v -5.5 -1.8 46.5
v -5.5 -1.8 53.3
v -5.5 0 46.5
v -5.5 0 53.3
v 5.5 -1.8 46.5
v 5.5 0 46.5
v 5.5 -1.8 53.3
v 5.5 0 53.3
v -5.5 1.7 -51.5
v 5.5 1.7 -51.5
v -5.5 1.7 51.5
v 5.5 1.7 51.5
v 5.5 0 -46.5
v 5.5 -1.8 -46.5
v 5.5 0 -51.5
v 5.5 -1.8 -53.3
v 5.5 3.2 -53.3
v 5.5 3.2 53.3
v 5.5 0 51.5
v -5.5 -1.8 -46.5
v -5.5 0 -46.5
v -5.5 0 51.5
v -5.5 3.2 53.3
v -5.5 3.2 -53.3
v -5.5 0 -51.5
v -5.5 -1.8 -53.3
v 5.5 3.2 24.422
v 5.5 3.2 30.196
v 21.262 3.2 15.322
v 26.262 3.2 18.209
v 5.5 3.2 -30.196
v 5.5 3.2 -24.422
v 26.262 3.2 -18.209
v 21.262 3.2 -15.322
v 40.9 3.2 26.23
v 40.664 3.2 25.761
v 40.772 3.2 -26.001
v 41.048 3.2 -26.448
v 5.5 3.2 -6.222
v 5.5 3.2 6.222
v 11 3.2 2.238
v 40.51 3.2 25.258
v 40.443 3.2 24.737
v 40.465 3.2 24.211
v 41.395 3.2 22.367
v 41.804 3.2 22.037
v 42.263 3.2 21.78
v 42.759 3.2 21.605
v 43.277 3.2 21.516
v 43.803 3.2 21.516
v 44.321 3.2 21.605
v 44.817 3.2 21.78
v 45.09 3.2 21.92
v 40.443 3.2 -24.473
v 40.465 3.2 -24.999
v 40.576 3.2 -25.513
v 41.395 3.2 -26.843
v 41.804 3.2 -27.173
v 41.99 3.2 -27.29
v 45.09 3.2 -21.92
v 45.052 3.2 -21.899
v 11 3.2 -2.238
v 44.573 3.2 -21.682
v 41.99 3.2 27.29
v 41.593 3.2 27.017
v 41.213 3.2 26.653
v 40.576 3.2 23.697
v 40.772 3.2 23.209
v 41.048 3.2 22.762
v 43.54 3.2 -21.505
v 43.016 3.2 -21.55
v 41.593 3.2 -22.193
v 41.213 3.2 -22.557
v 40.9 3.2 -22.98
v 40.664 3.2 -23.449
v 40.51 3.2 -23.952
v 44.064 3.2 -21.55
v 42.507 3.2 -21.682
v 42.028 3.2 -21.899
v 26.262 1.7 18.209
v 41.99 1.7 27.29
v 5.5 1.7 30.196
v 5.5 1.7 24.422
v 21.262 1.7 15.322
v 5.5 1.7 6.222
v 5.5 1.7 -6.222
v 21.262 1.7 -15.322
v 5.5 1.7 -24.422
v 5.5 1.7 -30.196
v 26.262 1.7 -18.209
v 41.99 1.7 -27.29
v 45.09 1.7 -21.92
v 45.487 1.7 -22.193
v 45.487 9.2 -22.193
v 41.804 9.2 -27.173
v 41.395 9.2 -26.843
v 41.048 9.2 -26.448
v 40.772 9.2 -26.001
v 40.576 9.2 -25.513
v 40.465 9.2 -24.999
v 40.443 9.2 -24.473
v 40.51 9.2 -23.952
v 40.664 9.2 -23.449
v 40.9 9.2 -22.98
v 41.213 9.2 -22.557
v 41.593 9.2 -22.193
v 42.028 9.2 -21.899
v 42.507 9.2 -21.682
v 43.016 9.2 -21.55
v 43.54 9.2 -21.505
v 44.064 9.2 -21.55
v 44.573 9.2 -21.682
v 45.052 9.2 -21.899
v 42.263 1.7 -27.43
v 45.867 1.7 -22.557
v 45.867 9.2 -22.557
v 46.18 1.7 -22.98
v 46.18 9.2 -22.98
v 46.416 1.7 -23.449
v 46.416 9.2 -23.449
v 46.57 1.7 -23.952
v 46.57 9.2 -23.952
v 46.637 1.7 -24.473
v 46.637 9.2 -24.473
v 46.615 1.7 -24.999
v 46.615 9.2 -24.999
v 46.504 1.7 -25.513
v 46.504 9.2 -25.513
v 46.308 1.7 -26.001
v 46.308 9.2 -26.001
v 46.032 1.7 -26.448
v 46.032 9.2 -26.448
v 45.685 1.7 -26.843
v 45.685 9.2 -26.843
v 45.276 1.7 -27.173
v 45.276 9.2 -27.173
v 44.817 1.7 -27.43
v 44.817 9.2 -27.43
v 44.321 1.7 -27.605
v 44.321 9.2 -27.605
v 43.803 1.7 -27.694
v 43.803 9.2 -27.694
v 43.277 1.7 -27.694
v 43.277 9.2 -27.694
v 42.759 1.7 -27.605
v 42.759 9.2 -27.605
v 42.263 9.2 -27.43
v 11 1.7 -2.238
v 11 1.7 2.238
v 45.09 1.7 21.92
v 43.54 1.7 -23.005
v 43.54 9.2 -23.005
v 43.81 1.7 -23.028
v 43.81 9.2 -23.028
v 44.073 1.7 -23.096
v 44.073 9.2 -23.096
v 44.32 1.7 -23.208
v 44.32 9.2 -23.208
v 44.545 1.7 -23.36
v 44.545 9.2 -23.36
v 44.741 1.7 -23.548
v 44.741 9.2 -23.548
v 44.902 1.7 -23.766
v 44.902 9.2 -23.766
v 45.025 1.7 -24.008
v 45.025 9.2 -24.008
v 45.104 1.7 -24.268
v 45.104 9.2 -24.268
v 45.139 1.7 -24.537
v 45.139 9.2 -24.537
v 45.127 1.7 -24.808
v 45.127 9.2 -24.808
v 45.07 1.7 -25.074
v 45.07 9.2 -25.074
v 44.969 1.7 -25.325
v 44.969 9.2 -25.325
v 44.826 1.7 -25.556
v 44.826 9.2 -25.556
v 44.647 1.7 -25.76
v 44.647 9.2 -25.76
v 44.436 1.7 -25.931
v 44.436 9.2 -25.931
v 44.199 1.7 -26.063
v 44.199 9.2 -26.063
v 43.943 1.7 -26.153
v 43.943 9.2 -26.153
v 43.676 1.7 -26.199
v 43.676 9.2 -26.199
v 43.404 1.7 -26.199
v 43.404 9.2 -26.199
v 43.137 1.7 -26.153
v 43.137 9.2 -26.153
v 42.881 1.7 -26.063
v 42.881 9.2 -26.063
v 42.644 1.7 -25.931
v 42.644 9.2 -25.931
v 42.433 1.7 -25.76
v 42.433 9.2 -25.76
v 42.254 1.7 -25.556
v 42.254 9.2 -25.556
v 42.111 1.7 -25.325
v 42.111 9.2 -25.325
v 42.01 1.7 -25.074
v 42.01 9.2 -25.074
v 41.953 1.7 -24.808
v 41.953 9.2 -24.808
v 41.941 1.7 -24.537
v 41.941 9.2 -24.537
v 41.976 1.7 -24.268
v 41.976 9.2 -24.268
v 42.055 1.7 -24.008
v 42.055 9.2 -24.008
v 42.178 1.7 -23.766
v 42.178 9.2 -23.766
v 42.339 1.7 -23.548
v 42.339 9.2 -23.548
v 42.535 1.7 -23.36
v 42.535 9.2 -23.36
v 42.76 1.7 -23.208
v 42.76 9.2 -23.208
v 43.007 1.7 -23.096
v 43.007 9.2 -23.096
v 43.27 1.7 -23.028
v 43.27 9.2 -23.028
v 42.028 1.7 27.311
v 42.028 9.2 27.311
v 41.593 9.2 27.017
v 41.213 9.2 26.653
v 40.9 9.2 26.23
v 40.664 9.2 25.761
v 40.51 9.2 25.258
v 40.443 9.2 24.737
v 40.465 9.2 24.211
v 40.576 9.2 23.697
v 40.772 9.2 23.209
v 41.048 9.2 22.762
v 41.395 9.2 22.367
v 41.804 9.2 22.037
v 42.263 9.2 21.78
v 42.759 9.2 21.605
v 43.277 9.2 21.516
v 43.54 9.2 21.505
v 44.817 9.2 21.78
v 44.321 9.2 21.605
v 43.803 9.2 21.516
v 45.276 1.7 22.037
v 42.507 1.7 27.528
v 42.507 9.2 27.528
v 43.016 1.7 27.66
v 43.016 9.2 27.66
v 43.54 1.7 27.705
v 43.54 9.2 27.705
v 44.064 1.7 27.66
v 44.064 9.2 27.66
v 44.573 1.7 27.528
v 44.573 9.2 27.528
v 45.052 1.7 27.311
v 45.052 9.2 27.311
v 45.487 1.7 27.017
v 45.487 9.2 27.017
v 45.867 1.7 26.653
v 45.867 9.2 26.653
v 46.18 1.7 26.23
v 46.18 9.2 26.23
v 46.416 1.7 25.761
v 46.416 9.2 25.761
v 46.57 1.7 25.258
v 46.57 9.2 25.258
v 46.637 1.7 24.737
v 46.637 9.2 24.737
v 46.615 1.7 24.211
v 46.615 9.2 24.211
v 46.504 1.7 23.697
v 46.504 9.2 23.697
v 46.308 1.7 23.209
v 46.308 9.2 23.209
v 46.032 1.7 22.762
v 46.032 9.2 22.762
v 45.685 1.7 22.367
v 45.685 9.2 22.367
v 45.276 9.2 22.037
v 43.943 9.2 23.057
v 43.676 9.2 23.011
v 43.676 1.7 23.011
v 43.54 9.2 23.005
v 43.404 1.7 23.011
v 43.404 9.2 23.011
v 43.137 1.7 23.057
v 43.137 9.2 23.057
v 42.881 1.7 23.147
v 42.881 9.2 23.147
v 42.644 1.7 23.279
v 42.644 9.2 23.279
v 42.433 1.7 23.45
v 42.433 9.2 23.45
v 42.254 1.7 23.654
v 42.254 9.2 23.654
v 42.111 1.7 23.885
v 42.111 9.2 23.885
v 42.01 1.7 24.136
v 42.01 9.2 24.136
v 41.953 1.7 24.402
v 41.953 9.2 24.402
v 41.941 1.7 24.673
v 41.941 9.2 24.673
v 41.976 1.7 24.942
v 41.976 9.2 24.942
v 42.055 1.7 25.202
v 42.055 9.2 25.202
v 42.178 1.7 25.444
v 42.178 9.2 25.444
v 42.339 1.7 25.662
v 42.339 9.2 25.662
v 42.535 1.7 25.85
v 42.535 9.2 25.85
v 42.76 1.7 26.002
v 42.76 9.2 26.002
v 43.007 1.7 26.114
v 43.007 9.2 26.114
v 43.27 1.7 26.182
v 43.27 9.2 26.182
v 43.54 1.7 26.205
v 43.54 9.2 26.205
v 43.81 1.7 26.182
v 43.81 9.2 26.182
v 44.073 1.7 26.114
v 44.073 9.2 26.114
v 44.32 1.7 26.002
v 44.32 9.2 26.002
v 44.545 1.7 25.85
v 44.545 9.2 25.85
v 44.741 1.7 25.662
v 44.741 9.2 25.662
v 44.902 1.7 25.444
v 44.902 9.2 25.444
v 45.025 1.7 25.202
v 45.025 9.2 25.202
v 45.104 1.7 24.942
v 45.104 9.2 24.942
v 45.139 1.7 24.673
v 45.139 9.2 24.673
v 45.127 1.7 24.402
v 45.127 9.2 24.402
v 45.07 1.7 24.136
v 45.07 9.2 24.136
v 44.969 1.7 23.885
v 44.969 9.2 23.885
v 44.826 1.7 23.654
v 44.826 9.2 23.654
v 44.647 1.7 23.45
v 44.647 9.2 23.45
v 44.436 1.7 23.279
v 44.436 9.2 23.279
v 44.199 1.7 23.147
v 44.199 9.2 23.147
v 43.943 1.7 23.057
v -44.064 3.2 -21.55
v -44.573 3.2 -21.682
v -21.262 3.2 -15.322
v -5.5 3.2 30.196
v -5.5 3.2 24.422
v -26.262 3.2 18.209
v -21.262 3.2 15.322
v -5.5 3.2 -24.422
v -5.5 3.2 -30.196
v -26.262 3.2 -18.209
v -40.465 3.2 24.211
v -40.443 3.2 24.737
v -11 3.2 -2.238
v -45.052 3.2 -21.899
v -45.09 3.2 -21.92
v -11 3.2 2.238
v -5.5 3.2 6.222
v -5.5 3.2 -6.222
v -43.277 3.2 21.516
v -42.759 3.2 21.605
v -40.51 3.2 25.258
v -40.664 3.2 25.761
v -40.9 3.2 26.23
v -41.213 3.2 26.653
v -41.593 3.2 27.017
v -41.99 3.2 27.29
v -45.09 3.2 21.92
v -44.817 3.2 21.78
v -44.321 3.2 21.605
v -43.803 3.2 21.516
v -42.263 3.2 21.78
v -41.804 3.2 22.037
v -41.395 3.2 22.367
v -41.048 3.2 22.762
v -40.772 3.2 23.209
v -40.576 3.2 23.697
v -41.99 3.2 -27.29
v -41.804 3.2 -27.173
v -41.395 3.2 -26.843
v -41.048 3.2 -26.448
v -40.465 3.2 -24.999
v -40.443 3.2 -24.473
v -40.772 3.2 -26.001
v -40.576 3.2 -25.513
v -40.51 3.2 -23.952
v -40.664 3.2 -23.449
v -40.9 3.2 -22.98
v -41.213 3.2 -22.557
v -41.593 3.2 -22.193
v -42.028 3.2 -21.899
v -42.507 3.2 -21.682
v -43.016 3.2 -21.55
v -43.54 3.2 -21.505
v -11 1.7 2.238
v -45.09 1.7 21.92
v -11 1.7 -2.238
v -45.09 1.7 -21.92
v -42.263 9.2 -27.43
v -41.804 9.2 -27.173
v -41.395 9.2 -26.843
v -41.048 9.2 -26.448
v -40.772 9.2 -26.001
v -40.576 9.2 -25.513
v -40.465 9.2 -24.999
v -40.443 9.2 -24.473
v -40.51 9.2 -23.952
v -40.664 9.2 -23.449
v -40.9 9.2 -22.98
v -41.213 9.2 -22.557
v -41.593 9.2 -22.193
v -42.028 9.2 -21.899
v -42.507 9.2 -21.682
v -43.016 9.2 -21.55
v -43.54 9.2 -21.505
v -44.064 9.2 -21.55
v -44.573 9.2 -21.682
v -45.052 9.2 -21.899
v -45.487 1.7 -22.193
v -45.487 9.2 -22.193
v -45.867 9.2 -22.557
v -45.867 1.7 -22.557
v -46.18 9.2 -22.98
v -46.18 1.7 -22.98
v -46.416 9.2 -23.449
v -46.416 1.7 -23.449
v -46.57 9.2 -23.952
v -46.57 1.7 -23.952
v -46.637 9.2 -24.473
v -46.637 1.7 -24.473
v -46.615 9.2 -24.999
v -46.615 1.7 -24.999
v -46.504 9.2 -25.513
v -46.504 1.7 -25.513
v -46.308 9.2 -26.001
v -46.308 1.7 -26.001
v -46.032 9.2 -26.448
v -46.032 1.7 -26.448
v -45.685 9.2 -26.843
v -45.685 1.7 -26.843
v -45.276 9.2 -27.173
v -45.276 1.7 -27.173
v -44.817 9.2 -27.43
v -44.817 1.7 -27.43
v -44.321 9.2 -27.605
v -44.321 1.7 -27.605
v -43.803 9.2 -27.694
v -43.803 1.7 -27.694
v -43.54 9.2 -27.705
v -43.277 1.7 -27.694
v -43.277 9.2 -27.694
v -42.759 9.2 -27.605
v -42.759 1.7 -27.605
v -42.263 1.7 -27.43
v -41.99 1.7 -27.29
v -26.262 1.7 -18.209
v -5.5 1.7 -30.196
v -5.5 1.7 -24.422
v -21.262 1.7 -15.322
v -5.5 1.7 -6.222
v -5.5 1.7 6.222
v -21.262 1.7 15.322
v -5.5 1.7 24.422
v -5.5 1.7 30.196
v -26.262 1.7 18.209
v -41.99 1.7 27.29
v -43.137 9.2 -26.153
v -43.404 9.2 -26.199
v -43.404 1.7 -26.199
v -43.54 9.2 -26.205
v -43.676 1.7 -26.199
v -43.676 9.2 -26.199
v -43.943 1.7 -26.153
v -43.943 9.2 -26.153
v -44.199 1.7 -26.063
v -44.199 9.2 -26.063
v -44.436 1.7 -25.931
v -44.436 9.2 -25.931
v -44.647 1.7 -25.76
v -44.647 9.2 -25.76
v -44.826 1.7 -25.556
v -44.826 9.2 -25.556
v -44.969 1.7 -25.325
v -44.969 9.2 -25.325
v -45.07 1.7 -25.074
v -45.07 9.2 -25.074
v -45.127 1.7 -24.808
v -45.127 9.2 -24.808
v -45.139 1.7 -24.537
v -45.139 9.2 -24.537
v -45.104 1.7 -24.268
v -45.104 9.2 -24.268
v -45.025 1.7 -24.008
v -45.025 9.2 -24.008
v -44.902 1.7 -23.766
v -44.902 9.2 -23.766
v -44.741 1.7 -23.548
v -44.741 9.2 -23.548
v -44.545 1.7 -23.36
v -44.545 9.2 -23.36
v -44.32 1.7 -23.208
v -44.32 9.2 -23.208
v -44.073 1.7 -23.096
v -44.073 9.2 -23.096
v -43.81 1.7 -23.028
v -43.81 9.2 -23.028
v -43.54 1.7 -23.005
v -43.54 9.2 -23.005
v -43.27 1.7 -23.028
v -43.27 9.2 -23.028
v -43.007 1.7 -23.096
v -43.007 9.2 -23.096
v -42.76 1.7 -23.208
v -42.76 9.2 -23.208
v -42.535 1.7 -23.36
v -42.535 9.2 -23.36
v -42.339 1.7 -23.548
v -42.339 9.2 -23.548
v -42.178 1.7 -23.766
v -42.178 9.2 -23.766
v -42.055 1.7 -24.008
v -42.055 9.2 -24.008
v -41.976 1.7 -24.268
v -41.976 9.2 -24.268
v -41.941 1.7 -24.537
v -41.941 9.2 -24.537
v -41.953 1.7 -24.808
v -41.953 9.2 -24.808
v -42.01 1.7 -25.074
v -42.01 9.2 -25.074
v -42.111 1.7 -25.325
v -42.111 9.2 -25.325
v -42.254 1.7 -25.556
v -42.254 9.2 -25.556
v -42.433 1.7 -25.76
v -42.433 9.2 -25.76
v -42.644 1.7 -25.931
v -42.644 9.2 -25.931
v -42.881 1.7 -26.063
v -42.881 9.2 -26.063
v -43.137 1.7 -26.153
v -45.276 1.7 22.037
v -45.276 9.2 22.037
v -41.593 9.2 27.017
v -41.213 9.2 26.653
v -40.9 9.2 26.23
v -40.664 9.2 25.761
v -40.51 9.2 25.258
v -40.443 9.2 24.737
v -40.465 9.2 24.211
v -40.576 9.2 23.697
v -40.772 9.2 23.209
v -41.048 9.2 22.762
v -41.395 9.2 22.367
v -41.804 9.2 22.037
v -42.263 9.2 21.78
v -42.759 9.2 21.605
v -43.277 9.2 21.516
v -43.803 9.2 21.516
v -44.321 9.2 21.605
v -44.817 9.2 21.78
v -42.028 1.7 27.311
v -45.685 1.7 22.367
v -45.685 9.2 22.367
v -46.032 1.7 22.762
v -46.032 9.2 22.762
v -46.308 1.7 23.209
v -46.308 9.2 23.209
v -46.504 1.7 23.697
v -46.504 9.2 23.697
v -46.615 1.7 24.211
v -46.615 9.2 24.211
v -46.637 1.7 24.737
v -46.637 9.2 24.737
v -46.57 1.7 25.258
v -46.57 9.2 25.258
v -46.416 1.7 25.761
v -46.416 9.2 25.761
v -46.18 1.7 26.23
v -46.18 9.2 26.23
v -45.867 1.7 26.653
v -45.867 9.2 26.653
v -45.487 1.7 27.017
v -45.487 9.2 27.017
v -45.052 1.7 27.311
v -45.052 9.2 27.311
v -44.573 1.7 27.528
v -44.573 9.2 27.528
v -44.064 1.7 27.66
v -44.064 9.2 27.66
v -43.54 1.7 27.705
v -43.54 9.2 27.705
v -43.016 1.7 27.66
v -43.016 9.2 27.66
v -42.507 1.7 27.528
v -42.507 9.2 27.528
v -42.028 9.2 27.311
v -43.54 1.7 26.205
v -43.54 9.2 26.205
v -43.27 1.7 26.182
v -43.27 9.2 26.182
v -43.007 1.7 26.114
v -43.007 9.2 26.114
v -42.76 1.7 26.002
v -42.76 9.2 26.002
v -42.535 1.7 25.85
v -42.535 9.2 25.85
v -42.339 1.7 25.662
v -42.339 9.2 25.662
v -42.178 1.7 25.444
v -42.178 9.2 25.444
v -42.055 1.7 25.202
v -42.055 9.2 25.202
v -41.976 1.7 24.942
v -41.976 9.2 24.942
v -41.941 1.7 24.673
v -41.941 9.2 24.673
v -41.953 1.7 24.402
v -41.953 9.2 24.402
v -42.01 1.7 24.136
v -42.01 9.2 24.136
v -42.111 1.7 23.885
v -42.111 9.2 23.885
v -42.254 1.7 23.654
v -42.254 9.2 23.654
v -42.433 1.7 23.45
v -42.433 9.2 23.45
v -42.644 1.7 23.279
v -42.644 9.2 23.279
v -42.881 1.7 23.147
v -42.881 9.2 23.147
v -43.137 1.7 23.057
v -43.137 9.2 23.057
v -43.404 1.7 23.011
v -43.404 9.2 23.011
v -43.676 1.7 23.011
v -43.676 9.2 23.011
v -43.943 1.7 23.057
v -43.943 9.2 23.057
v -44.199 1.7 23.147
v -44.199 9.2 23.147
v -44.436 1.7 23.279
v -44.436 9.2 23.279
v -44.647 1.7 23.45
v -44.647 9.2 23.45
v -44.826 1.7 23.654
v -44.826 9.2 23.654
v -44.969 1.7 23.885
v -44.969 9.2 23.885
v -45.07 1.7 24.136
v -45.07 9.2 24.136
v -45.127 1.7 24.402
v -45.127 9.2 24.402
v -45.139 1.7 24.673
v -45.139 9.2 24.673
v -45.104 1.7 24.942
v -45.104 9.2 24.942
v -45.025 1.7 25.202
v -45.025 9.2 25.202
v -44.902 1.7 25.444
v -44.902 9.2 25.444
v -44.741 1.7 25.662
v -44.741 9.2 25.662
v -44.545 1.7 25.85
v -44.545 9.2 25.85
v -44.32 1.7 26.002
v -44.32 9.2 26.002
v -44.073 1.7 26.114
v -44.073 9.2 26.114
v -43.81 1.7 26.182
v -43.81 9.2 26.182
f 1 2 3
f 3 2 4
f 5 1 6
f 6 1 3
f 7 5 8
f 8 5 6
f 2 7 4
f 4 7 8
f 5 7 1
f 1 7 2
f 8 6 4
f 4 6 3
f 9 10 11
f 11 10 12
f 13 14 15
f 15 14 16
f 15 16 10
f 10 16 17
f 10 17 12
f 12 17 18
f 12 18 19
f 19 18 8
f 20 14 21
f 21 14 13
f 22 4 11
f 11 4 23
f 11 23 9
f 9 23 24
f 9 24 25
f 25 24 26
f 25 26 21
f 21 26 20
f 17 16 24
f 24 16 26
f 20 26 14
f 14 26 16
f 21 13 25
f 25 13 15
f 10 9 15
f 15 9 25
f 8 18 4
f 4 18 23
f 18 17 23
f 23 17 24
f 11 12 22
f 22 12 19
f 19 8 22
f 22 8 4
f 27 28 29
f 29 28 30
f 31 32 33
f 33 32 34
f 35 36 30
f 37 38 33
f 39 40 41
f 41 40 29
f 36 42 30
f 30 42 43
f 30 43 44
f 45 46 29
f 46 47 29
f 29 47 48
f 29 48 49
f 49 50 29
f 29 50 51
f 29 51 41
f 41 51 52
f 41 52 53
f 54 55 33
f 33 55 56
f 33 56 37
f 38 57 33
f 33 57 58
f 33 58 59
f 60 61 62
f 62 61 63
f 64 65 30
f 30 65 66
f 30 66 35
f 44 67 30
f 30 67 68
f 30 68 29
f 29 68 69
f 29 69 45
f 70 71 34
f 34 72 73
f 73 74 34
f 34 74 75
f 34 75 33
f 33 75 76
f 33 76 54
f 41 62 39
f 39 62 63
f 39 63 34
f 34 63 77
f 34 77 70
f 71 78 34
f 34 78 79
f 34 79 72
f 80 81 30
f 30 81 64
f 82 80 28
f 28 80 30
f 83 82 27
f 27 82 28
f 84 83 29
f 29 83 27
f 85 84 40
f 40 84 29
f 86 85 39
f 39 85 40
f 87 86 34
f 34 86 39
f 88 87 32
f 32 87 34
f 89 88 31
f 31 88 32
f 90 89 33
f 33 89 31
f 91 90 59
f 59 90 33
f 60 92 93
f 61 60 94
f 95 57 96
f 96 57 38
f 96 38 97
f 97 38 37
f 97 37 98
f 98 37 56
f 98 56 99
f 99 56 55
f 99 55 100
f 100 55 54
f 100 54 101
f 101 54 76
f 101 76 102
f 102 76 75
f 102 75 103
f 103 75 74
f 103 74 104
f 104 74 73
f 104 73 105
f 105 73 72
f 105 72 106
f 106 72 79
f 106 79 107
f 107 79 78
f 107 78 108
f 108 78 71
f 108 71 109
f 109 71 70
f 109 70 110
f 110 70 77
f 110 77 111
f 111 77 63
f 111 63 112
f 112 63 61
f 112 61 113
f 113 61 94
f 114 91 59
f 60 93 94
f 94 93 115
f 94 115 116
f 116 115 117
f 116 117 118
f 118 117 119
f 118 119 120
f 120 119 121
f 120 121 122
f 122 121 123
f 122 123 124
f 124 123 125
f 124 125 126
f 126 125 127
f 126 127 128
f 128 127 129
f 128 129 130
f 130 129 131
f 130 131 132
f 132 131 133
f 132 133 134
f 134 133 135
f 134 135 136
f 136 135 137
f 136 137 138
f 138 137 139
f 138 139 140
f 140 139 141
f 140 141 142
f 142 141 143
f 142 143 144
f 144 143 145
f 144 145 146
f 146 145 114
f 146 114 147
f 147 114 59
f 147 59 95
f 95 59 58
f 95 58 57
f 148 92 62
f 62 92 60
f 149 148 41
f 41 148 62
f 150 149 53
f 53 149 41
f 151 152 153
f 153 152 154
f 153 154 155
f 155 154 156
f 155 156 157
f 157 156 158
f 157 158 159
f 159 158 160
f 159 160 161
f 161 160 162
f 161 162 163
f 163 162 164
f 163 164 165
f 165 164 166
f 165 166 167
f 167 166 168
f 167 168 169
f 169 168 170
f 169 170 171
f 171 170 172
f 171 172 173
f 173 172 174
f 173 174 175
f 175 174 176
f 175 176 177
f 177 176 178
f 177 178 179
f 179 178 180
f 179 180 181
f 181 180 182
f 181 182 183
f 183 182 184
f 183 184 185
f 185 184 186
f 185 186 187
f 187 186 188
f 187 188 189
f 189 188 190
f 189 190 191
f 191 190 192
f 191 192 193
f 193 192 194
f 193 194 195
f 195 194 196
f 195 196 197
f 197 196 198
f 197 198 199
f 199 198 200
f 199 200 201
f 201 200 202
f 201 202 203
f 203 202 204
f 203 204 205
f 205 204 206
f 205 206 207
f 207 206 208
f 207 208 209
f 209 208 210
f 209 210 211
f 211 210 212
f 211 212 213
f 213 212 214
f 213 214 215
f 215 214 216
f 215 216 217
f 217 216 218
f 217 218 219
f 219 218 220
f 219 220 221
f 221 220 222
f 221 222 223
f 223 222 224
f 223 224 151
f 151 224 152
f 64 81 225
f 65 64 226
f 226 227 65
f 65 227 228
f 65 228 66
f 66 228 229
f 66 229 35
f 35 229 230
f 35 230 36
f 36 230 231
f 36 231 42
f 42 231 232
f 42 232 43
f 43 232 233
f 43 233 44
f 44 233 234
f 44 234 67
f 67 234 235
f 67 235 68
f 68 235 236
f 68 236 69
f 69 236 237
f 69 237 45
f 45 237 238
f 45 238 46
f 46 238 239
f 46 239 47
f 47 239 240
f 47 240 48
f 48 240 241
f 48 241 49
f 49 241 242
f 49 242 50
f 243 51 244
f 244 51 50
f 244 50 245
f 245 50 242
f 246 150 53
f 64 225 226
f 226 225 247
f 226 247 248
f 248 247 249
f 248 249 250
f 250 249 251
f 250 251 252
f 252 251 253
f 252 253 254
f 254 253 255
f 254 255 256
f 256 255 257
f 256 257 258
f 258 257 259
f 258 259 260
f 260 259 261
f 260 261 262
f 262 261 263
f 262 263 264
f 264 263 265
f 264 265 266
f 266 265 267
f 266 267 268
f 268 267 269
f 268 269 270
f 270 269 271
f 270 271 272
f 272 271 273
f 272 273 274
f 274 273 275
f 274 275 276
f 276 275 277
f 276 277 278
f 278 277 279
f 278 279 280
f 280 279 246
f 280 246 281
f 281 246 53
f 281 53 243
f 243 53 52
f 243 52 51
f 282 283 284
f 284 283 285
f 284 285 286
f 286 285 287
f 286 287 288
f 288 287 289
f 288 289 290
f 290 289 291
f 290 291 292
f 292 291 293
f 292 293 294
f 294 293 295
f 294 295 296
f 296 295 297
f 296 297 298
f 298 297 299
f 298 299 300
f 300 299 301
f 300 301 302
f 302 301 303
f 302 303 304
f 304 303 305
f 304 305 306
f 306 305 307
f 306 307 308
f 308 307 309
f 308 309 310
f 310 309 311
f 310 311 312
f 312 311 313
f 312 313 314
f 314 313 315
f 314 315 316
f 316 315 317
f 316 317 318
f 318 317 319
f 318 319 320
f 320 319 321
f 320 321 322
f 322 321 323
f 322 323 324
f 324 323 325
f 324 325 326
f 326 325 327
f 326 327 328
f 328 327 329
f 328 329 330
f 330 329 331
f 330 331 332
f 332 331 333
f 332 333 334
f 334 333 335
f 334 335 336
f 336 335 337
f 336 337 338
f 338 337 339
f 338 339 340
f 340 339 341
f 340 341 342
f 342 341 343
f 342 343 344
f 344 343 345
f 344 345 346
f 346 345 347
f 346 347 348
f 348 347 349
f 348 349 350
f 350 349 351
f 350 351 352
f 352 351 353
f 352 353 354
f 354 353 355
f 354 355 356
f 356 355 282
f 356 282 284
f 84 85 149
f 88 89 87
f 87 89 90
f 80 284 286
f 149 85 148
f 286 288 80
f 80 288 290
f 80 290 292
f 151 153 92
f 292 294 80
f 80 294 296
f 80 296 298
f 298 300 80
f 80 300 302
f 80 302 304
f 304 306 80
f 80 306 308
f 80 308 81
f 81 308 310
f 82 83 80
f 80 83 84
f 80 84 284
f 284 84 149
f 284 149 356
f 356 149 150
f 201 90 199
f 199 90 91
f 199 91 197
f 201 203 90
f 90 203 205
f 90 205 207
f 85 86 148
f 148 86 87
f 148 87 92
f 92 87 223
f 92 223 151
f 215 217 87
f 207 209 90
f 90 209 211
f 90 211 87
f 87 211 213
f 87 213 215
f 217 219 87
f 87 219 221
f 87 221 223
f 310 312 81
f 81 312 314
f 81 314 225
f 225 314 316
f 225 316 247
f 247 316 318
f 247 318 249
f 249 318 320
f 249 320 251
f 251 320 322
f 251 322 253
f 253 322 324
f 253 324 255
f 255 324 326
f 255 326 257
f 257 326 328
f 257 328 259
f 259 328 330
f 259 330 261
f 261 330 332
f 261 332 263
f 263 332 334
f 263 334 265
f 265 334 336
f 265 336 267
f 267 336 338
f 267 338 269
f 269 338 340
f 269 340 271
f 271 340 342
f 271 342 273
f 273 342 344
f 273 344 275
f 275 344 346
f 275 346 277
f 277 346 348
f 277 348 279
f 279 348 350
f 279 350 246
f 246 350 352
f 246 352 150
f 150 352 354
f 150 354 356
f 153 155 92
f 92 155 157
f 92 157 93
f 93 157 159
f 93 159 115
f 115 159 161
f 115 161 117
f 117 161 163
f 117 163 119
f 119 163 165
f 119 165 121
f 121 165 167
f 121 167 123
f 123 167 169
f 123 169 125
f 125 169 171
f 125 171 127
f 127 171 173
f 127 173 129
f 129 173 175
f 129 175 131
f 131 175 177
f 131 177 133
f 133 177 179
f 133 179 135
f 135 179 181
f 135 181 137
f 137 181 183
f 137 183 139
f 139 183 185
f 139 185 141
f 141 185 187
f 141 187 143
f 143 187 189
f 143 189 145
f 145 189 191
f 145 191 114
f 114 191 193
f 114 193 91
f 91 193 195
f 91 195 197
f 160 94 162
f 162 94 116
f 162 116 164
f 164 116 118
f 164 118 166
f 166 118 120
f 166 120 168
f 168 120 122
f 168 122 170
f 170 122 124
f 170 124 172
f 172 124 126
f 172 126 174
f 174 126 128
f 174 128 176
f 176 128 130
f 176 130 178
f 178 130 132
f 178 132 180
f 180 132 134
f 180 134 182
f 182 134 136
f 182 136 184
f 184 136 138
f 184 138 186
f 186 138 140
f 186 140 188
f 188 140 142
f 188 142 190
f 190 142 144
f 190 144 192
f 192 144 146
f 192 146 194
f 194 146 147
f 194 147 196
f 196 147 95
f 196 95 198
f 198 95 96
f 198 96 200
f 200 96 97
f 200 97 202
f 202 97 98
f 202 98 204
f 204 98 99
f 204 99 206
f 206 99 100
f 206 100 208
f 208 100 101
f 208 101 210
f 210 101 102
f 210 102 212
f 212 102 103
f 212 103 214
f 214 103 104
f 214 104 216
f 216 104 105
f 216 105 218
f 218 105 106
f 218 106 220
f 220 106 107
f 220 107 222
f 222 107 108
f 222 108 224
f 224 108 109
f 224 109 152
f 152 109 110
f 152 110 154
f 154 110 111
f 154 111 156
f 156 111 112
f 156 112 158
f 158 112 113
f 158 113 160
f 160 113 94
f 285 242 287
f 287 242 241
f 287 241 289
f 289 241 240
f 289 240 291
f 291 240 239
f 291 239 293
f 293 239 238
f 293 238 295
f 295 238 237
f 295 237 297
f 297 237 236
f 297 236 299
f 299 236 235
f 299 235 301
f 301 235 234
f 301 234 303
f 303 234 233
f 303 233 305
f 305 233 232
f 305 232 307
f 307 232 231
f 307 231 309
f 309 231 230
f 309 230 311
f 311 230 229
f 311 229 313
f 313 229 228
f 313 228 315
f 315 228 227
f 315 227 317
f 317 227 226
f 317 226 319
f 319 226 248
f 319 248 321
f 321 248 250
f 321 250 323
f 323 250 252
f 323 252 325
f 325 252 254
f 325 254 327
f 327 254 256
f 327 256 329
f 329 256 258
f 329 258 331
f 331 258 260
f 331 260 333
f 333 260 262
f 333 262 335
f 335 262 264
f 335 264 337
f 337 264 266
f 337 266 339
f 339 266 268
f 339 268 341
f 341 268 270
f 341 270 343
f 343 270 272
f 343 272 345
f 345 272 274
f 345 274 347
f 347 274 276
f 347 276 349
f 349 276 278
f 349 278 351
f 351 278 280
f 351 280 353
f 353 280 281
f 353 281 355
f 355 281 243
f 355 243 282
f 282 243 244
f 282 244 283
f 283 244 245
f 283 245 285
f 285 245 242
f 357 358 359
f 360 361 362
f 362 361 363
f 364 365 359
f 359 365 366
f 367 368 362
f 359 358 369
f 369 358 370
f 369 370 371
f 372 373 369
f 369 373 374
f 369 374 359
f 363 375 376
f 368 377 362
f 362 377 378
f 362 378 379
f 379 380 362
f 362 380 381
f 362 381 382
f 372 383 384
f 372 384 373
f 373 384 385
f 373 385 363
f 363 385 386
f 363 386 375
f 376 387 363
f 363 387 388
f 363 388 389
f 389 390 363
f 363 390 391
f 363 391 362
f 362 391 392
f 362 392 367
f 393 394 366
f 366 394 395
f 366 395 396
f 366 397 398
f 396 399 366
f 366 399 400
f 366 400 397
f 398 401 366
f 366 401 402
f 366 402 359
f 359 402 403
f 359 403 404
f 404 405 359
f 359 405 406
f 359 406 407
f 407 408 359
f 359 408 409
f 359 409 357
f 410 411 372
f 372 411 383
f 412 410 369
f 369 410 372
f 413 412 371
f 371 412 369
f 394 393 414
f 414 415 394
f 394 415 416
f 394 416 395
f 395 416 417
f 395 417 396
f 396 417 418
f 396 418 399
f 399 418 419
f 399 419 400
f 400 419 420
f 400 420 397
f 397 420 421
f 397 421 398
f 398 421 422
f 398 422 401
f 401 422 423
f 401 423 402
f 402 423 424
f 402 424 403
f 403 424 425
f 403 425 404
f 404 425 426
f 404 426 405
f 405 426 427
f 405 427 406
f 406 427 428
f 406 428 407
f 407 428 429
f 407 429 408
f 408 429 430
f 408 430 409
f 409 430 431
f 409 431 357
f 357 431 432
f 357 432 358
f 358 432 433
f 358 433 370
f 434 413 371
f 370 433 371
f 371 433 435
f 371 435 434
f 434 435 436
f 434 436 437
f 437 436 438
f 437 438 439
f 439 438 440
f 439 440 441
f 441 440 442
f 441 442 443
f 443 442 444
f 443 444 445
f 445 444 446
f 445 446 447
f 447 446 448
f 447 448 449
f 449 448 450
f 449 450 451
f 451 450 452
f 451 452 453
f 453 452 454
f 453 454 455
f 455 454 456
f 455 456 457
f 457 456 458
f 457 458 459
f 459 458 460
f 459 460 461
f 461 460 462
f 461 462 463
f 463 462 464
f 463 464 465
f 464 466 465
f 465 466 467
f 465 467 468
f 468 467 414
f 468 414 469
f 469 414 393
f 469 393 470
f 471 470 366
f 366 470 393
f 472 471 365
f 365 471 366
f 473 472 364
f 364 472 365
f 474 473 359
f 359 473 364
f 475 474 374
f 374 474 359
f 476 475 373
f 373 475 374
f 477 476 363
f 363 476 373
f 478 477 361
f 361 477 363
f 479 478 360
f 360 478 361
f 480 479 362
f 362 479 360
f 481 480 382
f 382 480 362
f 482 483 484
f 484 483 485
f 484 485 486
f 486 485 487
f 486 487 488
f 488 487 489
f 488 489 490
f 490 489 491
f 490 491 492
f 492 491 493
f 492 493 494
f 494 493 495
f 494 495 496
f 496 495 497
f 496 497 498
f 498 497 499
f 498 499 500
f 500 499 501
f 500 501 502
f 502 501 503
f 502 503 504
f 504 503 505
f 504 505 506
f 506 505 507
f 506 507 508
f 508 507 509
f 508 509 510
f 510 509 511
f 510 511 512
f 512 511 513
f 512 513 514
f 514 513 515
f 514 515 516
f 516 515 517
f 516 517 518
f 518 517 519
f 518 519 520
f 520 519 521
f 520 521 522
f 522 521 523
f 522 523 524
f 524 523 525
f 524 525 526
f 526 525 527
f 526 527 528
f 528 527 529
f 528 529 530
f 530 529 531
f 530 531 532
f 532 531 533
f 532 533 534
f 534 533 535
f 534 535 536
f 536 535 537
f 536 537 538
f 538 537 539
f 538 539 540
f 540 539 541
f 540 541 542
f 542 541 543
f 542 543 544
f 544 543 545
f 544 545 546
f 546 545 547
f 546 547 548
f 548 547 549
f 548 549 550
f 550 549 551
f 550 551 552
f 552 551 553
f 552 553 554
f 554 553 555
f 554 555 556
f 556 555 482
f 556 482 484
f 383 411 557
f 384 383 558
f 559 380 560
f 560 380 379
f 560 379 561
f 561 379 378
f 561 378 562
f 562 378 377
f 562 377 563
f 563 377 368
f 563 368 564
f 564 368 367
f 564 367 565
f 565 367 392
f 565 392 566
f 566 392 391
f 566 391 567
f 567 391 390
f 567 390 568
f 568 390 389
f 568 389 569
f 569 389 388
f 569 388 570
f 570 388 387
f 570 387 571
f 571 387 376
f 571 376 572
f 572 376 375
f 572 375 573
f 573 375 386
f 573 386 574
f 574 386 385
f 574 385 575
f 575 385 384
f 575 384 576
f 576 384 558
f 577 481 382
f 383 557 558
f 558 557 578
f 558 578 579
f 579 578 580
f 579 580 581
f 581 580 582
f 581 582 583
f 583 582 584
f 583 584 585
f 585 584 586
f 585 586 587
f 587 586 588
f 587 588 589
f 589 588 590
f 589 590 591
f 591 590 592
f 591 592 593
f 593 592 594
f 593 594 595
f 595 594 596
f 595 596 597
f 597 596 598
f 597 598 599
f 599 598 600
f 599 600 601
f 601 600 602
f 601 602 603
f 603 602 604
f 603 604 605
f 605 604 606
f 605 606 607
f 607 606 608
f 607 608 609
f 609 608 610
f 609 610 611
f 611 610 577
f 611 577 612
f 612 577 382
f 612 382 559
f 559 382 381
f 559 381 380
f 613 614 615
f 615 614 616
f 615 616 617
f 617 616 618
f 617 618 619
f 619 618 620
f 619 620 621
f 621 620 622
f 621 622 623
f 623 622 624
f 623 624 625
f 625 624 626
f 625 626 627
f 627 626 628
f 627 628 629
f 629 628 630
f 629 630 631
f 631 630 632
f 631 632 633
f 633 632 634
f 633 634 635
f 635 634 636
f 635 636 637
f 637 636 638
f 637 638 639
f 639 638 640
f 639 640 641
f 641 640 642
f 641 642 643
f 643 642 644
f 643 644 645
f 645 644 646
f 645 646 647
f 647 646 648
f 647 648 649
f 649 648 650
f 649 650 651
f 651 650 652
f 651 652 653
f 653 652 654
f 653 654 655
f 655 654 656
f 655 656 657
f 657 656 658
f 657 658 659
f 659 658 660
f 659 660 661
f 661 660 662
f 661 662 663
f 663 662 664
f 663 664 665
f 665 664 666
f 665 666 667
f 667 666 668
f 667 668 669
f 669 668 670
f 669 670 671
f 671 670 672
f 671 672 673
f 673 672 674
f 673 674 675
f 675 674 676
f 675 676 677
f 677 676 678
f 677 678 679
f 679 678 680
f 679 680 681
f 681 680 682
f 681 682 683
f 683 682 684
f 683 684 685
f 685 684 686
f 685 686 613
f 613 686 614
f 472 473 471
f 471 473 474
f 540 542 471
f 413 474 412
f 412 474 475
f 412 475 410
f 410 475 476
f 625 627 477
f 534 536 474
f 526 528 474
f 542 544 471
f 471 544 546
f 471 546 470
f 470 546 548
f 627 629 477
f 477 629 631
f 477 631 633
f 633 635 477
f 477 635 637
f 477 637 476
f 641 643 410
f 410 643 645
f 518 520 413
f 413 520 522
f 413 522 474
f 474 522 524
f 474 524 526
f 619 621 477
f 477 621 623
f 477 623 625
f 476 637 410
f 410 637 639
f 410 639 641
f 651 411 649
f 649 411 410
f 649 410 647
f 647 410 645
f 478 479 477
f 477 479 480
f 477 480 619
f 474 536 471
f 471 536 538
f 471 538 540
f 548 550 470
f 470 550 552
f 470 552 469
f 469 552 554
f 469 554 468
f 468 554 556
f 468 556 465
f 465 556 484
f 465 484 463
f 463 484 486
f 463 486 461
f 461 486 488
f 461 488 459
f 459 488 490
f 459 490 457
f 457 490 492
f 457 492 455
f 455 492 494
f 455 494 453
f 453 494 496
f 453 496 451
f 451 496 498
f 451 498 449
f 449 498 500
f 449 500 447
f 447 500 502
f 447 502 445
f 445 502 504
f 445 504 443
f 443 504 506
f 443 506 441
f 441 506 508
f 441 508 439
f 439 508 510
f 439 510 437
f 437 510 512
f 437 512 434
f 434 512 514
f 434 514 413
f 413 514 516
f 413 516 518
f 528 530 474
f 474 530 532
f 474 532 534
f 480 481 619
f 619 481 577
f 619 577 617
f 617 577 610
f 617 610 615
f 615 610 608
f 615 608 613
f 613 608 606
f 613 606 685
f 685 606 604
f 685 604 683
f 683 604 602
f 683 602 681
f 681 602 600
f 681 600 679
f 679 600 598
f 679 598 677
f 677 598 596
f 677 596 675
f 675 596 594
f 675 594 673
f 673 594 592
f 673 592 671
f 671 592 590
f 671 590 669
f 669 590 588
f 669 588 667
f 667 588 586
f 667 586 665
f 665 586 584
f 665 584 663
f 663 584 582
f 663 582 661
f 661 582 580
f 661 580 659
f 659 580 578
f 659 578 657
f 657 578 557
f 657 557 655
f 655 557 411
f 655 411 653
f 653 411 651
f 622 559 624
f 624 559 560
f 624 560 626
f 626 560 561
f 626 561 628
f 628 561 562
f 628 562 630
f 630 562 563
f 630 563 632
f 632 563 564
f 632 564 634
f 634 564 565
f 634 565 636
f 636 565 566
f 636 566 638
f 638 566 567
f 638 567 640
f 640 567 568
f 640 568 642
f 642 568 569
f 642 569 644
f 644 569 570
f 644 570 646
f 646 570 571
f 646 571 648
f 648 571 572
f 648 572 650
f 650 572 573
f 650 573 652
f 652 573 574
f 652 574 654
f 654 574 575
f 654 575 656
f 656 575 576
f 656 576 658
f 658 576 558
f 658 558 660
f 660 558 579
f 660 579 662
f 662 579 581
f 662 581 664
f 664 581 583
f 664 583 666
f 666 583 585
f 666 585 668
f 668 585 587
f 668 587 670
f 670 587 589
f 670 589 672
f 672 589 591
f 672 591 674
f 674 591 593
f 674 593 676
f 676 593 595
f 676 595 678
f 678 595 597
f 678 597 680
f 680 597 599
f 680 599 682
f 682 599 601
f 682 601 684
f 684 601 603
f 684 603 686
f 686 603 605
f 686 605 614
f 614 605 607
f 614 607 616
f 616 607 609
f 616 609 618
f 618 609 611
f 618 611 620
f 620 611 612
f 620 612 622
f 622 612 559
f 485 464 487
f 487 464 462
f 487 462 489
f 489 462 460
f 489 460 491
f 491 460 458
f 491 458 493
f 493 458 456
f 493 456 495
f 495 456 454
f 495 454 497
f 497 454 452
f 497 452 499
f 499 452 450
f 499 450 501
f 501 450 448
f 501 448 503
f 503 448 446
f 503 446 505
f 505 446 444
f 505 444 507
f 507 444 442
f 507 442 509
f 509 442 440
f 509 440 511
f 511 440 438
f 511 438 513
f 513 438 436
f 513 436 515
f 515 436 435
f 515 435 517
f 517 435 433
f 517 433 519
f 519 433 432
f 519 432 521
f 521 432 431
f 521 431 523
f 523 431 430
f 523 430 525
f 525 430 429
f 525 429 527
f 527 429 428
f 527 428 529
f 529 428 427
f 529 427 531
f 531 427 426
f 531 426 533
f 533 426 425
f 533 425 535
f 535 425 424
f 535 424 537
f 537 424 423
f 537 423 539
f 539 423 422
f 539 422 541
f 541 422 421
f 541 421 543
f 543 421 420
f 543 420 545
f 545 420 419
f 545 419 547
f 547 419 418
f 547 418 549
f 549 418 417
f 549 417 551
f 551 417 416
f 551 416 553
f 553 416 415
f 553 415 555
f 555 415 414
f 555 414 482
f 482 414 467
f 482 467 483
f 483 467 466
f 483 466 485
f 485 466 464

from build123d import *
from build123d.topology import SkipClean

# Parameters (mm, degrees)
EXTRUDE_1_DEPTH   = 1.8
EXTRUDE_1_2_DEPTH = 1.8
SKETCH_2_W        = 11
SKETCH_2_H        = 1.8
EXTRUDE_2_DEPTH   = 1.7
SKETCH_3_W        = 11
SKETCH_3_H        = 106.6
EXTRUDE_3_DEPTH   = 1.5
SKETCH_4_R        = 1.6
EXTRUDE_5_DEPTH   = 1.5
EXTRUDE_5_2_DEPTH = 1.5
SKETCH_5_R        = 3.1
SKETCH_5_R_2      = 1.6
EXTRUDE_6_DEPTH   = 6


with BuildPart() as part:
    # 草图1 → 凸台-拉伸1 (new body)
    with BuildSketch(Plane(origin=(0, 0, 0), x_dir=(1, 0, 0), z_dir=(0, 1, 0))):
        Polygon((5.5, 53.3), (5.5, 51.5), (5.5, 46.5), (-5.5, 46.5), (-5.5, 51.5), (-5.5, 53.3), align=None)
    extrude(amount=-EXTRUDE_1_DEPTH)

    # 草图2 → 凸台-拉伸2 (add)
    with BuildSketch(Plane(origin=(0, 0, 0), x_dir=(1, 0, 0), z_dir=(0, 1, 0))):
        with Locations((0, 52.4)):
            Rectangle(SKETCH_2_W, SKETCH_2_H)
        with Locations((0, -52.4)):
            Rectangle(SKETCH_2_W, SKETCH_2_H)
    extrude(amount=EXTRUDE_2_DEPTH)


with BuildPart() as body_2:
    # 草图1 → Extrude 1 2 (new body)
    with BuildSketch(Plane(origin=(0, 0, 0), x_dir=(1, 0, 0), z_dir=(0, 1, 0))):
        Polygon((-5.5, -51.5), (-5.5, -46.5), (5.5, -46.5), (5.5, -51.5), (5.5, -53.3), (-5.5, -53.3), align=None)
    extrude(amount=-EXTRUDE_1_2_DEPTH)


with BuildPart() as extrude_2_piece_1:
    # of the separate pieces the step leaves, piece 1, a body of its own (extrude_2_pieces)
    add(part.part.solids().sort_by_distance((5.5, -1.8, -53.3))[0])



with BuildPart() as extrude_2_piece_2:
    # of the separate pieces the step leaves, piece 2, a body of its own (extrude_2_pieces)
    add(part.part.solids().sort_by_distance((-5.5, 0, 51.5))[0])


with BuildPart() as extrude_2_piece_1_1:
    add(extrude_2_piece_1.part)

    add(extrude_2_piece_2.part)  # 凸台-拉伸3 merges 凸台-拉伸2 piece 2
    # 草图3 → 凸台-拉伸3 (add)
    with BuildSketch(Plane(origin=(0, 1.7, 0), x_dir=(1, 0, 0), z_dir=(0, 1, 0))):
        Rectangle(SKETCH_3_W, SKETCH_3_H)
    extrude(amount=EXTRUDE_3_DEPTH)


with BuildPart() as body_3:
    # 草图4 → 凸台-拉伸5 (new body)
    with BuildSketch(Plane(origin=(0, 3.2, 0), x_dir=(1, 0, 0), z_dir=(0, 1, 0))):
        with BuildLine():
            ThreePointArc((-41.99, 27.289678752), (-46.224678752, 26.155), (-45.09, 21.920321248))
            Line((-45.09, 21.920321248), (-11, 2.238450572))
            Line((-11, 2.238450572), (-11, -2.238450572))
            Line((-11, -2.238450572), (-45.09, -21.920321248))
            ThreePointArc((-45.09, -21.920321248), (-46.224678752, -26.155), (-41.99, -27.289678752))
            Line((-41.99, -27.289678752), (-26.261662349, -18.208918775))
            Line((-26.261662349, -18.208918775), (-5.5, -30.195670121))
            Line((-5.5, -30.195670121), (-5.5, -24.422167429))
            Line((-5.5, -24.422167429), (-21.261662349, -15.322167429))
            Line((-21.261662349, -15.322167429), (-5.5, -6.222167429))
            Line((-5.5, -6.222167429), (-5.5, 6.222167429))
            Line((-5.5, 6.222167429), (-21.261662349, 15.322167429))
            Line((-21.261662349, 15.322167429), (-5.5, 24.422167429))
            Line((-5.5, 24.422167429), (-5.5, 30.195670121))
            Line((-5.5, 30.195670121), (-26.261662349, 18.208918775))
            Line((-26.261662349, 18.208918775), (-41.99, 27.289678752))
        make_face()
        with Locations(Location((-43.54, 24.605, 0), (0, 0, 270))):
            Circle(SKETCH_4_R, mode=Mode.SUBTRACT)
        with Locations(Location((-43.54, -24.605, 0), (0, 0, 270))):
            Circle(SKETCH_4_R, mode=Mode.SUBTRACT)
    extrude(amount=-EXTRUDE_5_DEPTH)



with BuildPart() as body_4:
    # 草图4 → Extrude 5 2 (new body)
    with BuildSketch(Plane(origin=(0, 3.2, 0), x_dir=(1, 0, 0), z_dir=(0, 1, 0))):
        with BuildLine():
            Line((26.261662349, 18.208918775), (5.5, 30.195670121))
            Line((5.5, 30.195670121), (5.5, 24.422167429))
            Line((5.5, 24.422167429), (21.261662349, 15.322167429))
            Line((21.261662349, 15.322167429), (5.5, 6.222167429))
            Line((5.5, 6.222167429), (5.5, -6.222167429))
            Line((5.5, -6.222167429), (21.261662349, -15.322167429))
            Line((21.261662349, -15.322167429), (5.5, -24.422167429))
            Line((5.5, -24.422167429), (5.5, -30.195670121))
            Line((5.5, -30.195670121), (26.261662349, -18.208918775))
            Line((26.261662349, -18.208918775), (41.99, -27.289678752))
            ThreePointArc((41.99, -27.289678752), (46.224678752, -26.155), (45.09, -21.920321248))
            Line((45.09, -21.920321248), (11, -2.238450572))
            Line((11, -2.238450572), (11, 2.238450572))
            Line((11, 2.238450572), (45.09, 21.920321248))
            ThreePointArc((45.09, 21.920321248), (46.224678752, 26.155), (41.99, 27.289678752))
            Line((41.99, 27.289678752), (26.261662349, 18.208918775))
        make_face()
        with Locations(Location((43.54, 24.605, 0), (0, 0, 270))):
            Circle(SKETCH_4_R, mode=Mode.SUBTRACT)
        with Locations(Location((43.54, -24.605, 0), (0, 0, 270))):
            Circle(SKETCH_4_R, mode=Mode.SUBTRACT)
    extrude(amount=-EXTRUDE_5_2_DEPTH)


with BuildPart() as body_3_1:
    with SkipClean():  # the faces are left unmerged after this step: merging them gives an invalid solid
        add(body_3.part)

        add(body_4.part)  # 凸台-拉伸6 merges body 4
        # 草图5 → 凸台-拉伸6 (add)
        # profile 1 of 4: a face of its own
        with BuildSketch(Plane(origin=(0, 3.2, 0), x_dir=(1, 0, 0), z_dir=(0, 1, 0))):
            with Locations(Location((43.54, 24.605, 0), (0, 0, 270))):
                Circle(SKETCH_5_R)
            with Locations(Location((43.54, 24.605, 0), (0, 0, 270))):
                Circle(SKETCH_5_R_2, mode=Mode.SUBTRACT)
        # profile 2 of 4: a face of its own
        with BuildSketch(Plane(origin=(0, 3.2, 0), x_dir=(1, 0, 0), z_dir=(0, 1, 0))):
            with Locations(Location((43.54, -24.605, 0), (0, 0, 240))):
                Circle(SKETCH_5_R)
            with Locations(Location((43.54, -24.605, 0), (0, 0, 270))):
                Circle(SKETCH_5_R_2, mode=Mode.SUBTRACT)
        # profile 3 of 4: a face of its own
        with BuildSketch(Plane(origin=(0, 3.2, 0), x_dir=(1, 0, 0), z_dir=(0, 1, 0))):
            with Locations(Location((-43.54, -24.605, 0), (0, 0, 270))):
                Circle(SKETCH_5_R)
            with Locations(Location((-43.54, -24.605, 0), (0, 0, 270))):
                Circle(SKETCH_5_R_2, mode=Mode.SUBTRACT)
        # profile 4 of 4: a face of its own
        with BuildSketch(Plane(origin=(0, 3.2, 0), x_dir=(1, 0, 0), z_dir=(0, 1, 0))):
            with Locations(Location((-43.54, 24.605, 0), (0, 0, 240))):
                Circle(SKETCH_5_R)
            with Locations(Location((-43.54, 24.605, 0), (0, 0, 270))):
                Circle(SKETCH_5_R_2, mode=Mode.SUBTRACT)
        extrude(amount=EXTRUDE_6_DEPTH)


solid = Compound([body_2.part, extrude_2_piece_1_1.part, body_3_1.part])
